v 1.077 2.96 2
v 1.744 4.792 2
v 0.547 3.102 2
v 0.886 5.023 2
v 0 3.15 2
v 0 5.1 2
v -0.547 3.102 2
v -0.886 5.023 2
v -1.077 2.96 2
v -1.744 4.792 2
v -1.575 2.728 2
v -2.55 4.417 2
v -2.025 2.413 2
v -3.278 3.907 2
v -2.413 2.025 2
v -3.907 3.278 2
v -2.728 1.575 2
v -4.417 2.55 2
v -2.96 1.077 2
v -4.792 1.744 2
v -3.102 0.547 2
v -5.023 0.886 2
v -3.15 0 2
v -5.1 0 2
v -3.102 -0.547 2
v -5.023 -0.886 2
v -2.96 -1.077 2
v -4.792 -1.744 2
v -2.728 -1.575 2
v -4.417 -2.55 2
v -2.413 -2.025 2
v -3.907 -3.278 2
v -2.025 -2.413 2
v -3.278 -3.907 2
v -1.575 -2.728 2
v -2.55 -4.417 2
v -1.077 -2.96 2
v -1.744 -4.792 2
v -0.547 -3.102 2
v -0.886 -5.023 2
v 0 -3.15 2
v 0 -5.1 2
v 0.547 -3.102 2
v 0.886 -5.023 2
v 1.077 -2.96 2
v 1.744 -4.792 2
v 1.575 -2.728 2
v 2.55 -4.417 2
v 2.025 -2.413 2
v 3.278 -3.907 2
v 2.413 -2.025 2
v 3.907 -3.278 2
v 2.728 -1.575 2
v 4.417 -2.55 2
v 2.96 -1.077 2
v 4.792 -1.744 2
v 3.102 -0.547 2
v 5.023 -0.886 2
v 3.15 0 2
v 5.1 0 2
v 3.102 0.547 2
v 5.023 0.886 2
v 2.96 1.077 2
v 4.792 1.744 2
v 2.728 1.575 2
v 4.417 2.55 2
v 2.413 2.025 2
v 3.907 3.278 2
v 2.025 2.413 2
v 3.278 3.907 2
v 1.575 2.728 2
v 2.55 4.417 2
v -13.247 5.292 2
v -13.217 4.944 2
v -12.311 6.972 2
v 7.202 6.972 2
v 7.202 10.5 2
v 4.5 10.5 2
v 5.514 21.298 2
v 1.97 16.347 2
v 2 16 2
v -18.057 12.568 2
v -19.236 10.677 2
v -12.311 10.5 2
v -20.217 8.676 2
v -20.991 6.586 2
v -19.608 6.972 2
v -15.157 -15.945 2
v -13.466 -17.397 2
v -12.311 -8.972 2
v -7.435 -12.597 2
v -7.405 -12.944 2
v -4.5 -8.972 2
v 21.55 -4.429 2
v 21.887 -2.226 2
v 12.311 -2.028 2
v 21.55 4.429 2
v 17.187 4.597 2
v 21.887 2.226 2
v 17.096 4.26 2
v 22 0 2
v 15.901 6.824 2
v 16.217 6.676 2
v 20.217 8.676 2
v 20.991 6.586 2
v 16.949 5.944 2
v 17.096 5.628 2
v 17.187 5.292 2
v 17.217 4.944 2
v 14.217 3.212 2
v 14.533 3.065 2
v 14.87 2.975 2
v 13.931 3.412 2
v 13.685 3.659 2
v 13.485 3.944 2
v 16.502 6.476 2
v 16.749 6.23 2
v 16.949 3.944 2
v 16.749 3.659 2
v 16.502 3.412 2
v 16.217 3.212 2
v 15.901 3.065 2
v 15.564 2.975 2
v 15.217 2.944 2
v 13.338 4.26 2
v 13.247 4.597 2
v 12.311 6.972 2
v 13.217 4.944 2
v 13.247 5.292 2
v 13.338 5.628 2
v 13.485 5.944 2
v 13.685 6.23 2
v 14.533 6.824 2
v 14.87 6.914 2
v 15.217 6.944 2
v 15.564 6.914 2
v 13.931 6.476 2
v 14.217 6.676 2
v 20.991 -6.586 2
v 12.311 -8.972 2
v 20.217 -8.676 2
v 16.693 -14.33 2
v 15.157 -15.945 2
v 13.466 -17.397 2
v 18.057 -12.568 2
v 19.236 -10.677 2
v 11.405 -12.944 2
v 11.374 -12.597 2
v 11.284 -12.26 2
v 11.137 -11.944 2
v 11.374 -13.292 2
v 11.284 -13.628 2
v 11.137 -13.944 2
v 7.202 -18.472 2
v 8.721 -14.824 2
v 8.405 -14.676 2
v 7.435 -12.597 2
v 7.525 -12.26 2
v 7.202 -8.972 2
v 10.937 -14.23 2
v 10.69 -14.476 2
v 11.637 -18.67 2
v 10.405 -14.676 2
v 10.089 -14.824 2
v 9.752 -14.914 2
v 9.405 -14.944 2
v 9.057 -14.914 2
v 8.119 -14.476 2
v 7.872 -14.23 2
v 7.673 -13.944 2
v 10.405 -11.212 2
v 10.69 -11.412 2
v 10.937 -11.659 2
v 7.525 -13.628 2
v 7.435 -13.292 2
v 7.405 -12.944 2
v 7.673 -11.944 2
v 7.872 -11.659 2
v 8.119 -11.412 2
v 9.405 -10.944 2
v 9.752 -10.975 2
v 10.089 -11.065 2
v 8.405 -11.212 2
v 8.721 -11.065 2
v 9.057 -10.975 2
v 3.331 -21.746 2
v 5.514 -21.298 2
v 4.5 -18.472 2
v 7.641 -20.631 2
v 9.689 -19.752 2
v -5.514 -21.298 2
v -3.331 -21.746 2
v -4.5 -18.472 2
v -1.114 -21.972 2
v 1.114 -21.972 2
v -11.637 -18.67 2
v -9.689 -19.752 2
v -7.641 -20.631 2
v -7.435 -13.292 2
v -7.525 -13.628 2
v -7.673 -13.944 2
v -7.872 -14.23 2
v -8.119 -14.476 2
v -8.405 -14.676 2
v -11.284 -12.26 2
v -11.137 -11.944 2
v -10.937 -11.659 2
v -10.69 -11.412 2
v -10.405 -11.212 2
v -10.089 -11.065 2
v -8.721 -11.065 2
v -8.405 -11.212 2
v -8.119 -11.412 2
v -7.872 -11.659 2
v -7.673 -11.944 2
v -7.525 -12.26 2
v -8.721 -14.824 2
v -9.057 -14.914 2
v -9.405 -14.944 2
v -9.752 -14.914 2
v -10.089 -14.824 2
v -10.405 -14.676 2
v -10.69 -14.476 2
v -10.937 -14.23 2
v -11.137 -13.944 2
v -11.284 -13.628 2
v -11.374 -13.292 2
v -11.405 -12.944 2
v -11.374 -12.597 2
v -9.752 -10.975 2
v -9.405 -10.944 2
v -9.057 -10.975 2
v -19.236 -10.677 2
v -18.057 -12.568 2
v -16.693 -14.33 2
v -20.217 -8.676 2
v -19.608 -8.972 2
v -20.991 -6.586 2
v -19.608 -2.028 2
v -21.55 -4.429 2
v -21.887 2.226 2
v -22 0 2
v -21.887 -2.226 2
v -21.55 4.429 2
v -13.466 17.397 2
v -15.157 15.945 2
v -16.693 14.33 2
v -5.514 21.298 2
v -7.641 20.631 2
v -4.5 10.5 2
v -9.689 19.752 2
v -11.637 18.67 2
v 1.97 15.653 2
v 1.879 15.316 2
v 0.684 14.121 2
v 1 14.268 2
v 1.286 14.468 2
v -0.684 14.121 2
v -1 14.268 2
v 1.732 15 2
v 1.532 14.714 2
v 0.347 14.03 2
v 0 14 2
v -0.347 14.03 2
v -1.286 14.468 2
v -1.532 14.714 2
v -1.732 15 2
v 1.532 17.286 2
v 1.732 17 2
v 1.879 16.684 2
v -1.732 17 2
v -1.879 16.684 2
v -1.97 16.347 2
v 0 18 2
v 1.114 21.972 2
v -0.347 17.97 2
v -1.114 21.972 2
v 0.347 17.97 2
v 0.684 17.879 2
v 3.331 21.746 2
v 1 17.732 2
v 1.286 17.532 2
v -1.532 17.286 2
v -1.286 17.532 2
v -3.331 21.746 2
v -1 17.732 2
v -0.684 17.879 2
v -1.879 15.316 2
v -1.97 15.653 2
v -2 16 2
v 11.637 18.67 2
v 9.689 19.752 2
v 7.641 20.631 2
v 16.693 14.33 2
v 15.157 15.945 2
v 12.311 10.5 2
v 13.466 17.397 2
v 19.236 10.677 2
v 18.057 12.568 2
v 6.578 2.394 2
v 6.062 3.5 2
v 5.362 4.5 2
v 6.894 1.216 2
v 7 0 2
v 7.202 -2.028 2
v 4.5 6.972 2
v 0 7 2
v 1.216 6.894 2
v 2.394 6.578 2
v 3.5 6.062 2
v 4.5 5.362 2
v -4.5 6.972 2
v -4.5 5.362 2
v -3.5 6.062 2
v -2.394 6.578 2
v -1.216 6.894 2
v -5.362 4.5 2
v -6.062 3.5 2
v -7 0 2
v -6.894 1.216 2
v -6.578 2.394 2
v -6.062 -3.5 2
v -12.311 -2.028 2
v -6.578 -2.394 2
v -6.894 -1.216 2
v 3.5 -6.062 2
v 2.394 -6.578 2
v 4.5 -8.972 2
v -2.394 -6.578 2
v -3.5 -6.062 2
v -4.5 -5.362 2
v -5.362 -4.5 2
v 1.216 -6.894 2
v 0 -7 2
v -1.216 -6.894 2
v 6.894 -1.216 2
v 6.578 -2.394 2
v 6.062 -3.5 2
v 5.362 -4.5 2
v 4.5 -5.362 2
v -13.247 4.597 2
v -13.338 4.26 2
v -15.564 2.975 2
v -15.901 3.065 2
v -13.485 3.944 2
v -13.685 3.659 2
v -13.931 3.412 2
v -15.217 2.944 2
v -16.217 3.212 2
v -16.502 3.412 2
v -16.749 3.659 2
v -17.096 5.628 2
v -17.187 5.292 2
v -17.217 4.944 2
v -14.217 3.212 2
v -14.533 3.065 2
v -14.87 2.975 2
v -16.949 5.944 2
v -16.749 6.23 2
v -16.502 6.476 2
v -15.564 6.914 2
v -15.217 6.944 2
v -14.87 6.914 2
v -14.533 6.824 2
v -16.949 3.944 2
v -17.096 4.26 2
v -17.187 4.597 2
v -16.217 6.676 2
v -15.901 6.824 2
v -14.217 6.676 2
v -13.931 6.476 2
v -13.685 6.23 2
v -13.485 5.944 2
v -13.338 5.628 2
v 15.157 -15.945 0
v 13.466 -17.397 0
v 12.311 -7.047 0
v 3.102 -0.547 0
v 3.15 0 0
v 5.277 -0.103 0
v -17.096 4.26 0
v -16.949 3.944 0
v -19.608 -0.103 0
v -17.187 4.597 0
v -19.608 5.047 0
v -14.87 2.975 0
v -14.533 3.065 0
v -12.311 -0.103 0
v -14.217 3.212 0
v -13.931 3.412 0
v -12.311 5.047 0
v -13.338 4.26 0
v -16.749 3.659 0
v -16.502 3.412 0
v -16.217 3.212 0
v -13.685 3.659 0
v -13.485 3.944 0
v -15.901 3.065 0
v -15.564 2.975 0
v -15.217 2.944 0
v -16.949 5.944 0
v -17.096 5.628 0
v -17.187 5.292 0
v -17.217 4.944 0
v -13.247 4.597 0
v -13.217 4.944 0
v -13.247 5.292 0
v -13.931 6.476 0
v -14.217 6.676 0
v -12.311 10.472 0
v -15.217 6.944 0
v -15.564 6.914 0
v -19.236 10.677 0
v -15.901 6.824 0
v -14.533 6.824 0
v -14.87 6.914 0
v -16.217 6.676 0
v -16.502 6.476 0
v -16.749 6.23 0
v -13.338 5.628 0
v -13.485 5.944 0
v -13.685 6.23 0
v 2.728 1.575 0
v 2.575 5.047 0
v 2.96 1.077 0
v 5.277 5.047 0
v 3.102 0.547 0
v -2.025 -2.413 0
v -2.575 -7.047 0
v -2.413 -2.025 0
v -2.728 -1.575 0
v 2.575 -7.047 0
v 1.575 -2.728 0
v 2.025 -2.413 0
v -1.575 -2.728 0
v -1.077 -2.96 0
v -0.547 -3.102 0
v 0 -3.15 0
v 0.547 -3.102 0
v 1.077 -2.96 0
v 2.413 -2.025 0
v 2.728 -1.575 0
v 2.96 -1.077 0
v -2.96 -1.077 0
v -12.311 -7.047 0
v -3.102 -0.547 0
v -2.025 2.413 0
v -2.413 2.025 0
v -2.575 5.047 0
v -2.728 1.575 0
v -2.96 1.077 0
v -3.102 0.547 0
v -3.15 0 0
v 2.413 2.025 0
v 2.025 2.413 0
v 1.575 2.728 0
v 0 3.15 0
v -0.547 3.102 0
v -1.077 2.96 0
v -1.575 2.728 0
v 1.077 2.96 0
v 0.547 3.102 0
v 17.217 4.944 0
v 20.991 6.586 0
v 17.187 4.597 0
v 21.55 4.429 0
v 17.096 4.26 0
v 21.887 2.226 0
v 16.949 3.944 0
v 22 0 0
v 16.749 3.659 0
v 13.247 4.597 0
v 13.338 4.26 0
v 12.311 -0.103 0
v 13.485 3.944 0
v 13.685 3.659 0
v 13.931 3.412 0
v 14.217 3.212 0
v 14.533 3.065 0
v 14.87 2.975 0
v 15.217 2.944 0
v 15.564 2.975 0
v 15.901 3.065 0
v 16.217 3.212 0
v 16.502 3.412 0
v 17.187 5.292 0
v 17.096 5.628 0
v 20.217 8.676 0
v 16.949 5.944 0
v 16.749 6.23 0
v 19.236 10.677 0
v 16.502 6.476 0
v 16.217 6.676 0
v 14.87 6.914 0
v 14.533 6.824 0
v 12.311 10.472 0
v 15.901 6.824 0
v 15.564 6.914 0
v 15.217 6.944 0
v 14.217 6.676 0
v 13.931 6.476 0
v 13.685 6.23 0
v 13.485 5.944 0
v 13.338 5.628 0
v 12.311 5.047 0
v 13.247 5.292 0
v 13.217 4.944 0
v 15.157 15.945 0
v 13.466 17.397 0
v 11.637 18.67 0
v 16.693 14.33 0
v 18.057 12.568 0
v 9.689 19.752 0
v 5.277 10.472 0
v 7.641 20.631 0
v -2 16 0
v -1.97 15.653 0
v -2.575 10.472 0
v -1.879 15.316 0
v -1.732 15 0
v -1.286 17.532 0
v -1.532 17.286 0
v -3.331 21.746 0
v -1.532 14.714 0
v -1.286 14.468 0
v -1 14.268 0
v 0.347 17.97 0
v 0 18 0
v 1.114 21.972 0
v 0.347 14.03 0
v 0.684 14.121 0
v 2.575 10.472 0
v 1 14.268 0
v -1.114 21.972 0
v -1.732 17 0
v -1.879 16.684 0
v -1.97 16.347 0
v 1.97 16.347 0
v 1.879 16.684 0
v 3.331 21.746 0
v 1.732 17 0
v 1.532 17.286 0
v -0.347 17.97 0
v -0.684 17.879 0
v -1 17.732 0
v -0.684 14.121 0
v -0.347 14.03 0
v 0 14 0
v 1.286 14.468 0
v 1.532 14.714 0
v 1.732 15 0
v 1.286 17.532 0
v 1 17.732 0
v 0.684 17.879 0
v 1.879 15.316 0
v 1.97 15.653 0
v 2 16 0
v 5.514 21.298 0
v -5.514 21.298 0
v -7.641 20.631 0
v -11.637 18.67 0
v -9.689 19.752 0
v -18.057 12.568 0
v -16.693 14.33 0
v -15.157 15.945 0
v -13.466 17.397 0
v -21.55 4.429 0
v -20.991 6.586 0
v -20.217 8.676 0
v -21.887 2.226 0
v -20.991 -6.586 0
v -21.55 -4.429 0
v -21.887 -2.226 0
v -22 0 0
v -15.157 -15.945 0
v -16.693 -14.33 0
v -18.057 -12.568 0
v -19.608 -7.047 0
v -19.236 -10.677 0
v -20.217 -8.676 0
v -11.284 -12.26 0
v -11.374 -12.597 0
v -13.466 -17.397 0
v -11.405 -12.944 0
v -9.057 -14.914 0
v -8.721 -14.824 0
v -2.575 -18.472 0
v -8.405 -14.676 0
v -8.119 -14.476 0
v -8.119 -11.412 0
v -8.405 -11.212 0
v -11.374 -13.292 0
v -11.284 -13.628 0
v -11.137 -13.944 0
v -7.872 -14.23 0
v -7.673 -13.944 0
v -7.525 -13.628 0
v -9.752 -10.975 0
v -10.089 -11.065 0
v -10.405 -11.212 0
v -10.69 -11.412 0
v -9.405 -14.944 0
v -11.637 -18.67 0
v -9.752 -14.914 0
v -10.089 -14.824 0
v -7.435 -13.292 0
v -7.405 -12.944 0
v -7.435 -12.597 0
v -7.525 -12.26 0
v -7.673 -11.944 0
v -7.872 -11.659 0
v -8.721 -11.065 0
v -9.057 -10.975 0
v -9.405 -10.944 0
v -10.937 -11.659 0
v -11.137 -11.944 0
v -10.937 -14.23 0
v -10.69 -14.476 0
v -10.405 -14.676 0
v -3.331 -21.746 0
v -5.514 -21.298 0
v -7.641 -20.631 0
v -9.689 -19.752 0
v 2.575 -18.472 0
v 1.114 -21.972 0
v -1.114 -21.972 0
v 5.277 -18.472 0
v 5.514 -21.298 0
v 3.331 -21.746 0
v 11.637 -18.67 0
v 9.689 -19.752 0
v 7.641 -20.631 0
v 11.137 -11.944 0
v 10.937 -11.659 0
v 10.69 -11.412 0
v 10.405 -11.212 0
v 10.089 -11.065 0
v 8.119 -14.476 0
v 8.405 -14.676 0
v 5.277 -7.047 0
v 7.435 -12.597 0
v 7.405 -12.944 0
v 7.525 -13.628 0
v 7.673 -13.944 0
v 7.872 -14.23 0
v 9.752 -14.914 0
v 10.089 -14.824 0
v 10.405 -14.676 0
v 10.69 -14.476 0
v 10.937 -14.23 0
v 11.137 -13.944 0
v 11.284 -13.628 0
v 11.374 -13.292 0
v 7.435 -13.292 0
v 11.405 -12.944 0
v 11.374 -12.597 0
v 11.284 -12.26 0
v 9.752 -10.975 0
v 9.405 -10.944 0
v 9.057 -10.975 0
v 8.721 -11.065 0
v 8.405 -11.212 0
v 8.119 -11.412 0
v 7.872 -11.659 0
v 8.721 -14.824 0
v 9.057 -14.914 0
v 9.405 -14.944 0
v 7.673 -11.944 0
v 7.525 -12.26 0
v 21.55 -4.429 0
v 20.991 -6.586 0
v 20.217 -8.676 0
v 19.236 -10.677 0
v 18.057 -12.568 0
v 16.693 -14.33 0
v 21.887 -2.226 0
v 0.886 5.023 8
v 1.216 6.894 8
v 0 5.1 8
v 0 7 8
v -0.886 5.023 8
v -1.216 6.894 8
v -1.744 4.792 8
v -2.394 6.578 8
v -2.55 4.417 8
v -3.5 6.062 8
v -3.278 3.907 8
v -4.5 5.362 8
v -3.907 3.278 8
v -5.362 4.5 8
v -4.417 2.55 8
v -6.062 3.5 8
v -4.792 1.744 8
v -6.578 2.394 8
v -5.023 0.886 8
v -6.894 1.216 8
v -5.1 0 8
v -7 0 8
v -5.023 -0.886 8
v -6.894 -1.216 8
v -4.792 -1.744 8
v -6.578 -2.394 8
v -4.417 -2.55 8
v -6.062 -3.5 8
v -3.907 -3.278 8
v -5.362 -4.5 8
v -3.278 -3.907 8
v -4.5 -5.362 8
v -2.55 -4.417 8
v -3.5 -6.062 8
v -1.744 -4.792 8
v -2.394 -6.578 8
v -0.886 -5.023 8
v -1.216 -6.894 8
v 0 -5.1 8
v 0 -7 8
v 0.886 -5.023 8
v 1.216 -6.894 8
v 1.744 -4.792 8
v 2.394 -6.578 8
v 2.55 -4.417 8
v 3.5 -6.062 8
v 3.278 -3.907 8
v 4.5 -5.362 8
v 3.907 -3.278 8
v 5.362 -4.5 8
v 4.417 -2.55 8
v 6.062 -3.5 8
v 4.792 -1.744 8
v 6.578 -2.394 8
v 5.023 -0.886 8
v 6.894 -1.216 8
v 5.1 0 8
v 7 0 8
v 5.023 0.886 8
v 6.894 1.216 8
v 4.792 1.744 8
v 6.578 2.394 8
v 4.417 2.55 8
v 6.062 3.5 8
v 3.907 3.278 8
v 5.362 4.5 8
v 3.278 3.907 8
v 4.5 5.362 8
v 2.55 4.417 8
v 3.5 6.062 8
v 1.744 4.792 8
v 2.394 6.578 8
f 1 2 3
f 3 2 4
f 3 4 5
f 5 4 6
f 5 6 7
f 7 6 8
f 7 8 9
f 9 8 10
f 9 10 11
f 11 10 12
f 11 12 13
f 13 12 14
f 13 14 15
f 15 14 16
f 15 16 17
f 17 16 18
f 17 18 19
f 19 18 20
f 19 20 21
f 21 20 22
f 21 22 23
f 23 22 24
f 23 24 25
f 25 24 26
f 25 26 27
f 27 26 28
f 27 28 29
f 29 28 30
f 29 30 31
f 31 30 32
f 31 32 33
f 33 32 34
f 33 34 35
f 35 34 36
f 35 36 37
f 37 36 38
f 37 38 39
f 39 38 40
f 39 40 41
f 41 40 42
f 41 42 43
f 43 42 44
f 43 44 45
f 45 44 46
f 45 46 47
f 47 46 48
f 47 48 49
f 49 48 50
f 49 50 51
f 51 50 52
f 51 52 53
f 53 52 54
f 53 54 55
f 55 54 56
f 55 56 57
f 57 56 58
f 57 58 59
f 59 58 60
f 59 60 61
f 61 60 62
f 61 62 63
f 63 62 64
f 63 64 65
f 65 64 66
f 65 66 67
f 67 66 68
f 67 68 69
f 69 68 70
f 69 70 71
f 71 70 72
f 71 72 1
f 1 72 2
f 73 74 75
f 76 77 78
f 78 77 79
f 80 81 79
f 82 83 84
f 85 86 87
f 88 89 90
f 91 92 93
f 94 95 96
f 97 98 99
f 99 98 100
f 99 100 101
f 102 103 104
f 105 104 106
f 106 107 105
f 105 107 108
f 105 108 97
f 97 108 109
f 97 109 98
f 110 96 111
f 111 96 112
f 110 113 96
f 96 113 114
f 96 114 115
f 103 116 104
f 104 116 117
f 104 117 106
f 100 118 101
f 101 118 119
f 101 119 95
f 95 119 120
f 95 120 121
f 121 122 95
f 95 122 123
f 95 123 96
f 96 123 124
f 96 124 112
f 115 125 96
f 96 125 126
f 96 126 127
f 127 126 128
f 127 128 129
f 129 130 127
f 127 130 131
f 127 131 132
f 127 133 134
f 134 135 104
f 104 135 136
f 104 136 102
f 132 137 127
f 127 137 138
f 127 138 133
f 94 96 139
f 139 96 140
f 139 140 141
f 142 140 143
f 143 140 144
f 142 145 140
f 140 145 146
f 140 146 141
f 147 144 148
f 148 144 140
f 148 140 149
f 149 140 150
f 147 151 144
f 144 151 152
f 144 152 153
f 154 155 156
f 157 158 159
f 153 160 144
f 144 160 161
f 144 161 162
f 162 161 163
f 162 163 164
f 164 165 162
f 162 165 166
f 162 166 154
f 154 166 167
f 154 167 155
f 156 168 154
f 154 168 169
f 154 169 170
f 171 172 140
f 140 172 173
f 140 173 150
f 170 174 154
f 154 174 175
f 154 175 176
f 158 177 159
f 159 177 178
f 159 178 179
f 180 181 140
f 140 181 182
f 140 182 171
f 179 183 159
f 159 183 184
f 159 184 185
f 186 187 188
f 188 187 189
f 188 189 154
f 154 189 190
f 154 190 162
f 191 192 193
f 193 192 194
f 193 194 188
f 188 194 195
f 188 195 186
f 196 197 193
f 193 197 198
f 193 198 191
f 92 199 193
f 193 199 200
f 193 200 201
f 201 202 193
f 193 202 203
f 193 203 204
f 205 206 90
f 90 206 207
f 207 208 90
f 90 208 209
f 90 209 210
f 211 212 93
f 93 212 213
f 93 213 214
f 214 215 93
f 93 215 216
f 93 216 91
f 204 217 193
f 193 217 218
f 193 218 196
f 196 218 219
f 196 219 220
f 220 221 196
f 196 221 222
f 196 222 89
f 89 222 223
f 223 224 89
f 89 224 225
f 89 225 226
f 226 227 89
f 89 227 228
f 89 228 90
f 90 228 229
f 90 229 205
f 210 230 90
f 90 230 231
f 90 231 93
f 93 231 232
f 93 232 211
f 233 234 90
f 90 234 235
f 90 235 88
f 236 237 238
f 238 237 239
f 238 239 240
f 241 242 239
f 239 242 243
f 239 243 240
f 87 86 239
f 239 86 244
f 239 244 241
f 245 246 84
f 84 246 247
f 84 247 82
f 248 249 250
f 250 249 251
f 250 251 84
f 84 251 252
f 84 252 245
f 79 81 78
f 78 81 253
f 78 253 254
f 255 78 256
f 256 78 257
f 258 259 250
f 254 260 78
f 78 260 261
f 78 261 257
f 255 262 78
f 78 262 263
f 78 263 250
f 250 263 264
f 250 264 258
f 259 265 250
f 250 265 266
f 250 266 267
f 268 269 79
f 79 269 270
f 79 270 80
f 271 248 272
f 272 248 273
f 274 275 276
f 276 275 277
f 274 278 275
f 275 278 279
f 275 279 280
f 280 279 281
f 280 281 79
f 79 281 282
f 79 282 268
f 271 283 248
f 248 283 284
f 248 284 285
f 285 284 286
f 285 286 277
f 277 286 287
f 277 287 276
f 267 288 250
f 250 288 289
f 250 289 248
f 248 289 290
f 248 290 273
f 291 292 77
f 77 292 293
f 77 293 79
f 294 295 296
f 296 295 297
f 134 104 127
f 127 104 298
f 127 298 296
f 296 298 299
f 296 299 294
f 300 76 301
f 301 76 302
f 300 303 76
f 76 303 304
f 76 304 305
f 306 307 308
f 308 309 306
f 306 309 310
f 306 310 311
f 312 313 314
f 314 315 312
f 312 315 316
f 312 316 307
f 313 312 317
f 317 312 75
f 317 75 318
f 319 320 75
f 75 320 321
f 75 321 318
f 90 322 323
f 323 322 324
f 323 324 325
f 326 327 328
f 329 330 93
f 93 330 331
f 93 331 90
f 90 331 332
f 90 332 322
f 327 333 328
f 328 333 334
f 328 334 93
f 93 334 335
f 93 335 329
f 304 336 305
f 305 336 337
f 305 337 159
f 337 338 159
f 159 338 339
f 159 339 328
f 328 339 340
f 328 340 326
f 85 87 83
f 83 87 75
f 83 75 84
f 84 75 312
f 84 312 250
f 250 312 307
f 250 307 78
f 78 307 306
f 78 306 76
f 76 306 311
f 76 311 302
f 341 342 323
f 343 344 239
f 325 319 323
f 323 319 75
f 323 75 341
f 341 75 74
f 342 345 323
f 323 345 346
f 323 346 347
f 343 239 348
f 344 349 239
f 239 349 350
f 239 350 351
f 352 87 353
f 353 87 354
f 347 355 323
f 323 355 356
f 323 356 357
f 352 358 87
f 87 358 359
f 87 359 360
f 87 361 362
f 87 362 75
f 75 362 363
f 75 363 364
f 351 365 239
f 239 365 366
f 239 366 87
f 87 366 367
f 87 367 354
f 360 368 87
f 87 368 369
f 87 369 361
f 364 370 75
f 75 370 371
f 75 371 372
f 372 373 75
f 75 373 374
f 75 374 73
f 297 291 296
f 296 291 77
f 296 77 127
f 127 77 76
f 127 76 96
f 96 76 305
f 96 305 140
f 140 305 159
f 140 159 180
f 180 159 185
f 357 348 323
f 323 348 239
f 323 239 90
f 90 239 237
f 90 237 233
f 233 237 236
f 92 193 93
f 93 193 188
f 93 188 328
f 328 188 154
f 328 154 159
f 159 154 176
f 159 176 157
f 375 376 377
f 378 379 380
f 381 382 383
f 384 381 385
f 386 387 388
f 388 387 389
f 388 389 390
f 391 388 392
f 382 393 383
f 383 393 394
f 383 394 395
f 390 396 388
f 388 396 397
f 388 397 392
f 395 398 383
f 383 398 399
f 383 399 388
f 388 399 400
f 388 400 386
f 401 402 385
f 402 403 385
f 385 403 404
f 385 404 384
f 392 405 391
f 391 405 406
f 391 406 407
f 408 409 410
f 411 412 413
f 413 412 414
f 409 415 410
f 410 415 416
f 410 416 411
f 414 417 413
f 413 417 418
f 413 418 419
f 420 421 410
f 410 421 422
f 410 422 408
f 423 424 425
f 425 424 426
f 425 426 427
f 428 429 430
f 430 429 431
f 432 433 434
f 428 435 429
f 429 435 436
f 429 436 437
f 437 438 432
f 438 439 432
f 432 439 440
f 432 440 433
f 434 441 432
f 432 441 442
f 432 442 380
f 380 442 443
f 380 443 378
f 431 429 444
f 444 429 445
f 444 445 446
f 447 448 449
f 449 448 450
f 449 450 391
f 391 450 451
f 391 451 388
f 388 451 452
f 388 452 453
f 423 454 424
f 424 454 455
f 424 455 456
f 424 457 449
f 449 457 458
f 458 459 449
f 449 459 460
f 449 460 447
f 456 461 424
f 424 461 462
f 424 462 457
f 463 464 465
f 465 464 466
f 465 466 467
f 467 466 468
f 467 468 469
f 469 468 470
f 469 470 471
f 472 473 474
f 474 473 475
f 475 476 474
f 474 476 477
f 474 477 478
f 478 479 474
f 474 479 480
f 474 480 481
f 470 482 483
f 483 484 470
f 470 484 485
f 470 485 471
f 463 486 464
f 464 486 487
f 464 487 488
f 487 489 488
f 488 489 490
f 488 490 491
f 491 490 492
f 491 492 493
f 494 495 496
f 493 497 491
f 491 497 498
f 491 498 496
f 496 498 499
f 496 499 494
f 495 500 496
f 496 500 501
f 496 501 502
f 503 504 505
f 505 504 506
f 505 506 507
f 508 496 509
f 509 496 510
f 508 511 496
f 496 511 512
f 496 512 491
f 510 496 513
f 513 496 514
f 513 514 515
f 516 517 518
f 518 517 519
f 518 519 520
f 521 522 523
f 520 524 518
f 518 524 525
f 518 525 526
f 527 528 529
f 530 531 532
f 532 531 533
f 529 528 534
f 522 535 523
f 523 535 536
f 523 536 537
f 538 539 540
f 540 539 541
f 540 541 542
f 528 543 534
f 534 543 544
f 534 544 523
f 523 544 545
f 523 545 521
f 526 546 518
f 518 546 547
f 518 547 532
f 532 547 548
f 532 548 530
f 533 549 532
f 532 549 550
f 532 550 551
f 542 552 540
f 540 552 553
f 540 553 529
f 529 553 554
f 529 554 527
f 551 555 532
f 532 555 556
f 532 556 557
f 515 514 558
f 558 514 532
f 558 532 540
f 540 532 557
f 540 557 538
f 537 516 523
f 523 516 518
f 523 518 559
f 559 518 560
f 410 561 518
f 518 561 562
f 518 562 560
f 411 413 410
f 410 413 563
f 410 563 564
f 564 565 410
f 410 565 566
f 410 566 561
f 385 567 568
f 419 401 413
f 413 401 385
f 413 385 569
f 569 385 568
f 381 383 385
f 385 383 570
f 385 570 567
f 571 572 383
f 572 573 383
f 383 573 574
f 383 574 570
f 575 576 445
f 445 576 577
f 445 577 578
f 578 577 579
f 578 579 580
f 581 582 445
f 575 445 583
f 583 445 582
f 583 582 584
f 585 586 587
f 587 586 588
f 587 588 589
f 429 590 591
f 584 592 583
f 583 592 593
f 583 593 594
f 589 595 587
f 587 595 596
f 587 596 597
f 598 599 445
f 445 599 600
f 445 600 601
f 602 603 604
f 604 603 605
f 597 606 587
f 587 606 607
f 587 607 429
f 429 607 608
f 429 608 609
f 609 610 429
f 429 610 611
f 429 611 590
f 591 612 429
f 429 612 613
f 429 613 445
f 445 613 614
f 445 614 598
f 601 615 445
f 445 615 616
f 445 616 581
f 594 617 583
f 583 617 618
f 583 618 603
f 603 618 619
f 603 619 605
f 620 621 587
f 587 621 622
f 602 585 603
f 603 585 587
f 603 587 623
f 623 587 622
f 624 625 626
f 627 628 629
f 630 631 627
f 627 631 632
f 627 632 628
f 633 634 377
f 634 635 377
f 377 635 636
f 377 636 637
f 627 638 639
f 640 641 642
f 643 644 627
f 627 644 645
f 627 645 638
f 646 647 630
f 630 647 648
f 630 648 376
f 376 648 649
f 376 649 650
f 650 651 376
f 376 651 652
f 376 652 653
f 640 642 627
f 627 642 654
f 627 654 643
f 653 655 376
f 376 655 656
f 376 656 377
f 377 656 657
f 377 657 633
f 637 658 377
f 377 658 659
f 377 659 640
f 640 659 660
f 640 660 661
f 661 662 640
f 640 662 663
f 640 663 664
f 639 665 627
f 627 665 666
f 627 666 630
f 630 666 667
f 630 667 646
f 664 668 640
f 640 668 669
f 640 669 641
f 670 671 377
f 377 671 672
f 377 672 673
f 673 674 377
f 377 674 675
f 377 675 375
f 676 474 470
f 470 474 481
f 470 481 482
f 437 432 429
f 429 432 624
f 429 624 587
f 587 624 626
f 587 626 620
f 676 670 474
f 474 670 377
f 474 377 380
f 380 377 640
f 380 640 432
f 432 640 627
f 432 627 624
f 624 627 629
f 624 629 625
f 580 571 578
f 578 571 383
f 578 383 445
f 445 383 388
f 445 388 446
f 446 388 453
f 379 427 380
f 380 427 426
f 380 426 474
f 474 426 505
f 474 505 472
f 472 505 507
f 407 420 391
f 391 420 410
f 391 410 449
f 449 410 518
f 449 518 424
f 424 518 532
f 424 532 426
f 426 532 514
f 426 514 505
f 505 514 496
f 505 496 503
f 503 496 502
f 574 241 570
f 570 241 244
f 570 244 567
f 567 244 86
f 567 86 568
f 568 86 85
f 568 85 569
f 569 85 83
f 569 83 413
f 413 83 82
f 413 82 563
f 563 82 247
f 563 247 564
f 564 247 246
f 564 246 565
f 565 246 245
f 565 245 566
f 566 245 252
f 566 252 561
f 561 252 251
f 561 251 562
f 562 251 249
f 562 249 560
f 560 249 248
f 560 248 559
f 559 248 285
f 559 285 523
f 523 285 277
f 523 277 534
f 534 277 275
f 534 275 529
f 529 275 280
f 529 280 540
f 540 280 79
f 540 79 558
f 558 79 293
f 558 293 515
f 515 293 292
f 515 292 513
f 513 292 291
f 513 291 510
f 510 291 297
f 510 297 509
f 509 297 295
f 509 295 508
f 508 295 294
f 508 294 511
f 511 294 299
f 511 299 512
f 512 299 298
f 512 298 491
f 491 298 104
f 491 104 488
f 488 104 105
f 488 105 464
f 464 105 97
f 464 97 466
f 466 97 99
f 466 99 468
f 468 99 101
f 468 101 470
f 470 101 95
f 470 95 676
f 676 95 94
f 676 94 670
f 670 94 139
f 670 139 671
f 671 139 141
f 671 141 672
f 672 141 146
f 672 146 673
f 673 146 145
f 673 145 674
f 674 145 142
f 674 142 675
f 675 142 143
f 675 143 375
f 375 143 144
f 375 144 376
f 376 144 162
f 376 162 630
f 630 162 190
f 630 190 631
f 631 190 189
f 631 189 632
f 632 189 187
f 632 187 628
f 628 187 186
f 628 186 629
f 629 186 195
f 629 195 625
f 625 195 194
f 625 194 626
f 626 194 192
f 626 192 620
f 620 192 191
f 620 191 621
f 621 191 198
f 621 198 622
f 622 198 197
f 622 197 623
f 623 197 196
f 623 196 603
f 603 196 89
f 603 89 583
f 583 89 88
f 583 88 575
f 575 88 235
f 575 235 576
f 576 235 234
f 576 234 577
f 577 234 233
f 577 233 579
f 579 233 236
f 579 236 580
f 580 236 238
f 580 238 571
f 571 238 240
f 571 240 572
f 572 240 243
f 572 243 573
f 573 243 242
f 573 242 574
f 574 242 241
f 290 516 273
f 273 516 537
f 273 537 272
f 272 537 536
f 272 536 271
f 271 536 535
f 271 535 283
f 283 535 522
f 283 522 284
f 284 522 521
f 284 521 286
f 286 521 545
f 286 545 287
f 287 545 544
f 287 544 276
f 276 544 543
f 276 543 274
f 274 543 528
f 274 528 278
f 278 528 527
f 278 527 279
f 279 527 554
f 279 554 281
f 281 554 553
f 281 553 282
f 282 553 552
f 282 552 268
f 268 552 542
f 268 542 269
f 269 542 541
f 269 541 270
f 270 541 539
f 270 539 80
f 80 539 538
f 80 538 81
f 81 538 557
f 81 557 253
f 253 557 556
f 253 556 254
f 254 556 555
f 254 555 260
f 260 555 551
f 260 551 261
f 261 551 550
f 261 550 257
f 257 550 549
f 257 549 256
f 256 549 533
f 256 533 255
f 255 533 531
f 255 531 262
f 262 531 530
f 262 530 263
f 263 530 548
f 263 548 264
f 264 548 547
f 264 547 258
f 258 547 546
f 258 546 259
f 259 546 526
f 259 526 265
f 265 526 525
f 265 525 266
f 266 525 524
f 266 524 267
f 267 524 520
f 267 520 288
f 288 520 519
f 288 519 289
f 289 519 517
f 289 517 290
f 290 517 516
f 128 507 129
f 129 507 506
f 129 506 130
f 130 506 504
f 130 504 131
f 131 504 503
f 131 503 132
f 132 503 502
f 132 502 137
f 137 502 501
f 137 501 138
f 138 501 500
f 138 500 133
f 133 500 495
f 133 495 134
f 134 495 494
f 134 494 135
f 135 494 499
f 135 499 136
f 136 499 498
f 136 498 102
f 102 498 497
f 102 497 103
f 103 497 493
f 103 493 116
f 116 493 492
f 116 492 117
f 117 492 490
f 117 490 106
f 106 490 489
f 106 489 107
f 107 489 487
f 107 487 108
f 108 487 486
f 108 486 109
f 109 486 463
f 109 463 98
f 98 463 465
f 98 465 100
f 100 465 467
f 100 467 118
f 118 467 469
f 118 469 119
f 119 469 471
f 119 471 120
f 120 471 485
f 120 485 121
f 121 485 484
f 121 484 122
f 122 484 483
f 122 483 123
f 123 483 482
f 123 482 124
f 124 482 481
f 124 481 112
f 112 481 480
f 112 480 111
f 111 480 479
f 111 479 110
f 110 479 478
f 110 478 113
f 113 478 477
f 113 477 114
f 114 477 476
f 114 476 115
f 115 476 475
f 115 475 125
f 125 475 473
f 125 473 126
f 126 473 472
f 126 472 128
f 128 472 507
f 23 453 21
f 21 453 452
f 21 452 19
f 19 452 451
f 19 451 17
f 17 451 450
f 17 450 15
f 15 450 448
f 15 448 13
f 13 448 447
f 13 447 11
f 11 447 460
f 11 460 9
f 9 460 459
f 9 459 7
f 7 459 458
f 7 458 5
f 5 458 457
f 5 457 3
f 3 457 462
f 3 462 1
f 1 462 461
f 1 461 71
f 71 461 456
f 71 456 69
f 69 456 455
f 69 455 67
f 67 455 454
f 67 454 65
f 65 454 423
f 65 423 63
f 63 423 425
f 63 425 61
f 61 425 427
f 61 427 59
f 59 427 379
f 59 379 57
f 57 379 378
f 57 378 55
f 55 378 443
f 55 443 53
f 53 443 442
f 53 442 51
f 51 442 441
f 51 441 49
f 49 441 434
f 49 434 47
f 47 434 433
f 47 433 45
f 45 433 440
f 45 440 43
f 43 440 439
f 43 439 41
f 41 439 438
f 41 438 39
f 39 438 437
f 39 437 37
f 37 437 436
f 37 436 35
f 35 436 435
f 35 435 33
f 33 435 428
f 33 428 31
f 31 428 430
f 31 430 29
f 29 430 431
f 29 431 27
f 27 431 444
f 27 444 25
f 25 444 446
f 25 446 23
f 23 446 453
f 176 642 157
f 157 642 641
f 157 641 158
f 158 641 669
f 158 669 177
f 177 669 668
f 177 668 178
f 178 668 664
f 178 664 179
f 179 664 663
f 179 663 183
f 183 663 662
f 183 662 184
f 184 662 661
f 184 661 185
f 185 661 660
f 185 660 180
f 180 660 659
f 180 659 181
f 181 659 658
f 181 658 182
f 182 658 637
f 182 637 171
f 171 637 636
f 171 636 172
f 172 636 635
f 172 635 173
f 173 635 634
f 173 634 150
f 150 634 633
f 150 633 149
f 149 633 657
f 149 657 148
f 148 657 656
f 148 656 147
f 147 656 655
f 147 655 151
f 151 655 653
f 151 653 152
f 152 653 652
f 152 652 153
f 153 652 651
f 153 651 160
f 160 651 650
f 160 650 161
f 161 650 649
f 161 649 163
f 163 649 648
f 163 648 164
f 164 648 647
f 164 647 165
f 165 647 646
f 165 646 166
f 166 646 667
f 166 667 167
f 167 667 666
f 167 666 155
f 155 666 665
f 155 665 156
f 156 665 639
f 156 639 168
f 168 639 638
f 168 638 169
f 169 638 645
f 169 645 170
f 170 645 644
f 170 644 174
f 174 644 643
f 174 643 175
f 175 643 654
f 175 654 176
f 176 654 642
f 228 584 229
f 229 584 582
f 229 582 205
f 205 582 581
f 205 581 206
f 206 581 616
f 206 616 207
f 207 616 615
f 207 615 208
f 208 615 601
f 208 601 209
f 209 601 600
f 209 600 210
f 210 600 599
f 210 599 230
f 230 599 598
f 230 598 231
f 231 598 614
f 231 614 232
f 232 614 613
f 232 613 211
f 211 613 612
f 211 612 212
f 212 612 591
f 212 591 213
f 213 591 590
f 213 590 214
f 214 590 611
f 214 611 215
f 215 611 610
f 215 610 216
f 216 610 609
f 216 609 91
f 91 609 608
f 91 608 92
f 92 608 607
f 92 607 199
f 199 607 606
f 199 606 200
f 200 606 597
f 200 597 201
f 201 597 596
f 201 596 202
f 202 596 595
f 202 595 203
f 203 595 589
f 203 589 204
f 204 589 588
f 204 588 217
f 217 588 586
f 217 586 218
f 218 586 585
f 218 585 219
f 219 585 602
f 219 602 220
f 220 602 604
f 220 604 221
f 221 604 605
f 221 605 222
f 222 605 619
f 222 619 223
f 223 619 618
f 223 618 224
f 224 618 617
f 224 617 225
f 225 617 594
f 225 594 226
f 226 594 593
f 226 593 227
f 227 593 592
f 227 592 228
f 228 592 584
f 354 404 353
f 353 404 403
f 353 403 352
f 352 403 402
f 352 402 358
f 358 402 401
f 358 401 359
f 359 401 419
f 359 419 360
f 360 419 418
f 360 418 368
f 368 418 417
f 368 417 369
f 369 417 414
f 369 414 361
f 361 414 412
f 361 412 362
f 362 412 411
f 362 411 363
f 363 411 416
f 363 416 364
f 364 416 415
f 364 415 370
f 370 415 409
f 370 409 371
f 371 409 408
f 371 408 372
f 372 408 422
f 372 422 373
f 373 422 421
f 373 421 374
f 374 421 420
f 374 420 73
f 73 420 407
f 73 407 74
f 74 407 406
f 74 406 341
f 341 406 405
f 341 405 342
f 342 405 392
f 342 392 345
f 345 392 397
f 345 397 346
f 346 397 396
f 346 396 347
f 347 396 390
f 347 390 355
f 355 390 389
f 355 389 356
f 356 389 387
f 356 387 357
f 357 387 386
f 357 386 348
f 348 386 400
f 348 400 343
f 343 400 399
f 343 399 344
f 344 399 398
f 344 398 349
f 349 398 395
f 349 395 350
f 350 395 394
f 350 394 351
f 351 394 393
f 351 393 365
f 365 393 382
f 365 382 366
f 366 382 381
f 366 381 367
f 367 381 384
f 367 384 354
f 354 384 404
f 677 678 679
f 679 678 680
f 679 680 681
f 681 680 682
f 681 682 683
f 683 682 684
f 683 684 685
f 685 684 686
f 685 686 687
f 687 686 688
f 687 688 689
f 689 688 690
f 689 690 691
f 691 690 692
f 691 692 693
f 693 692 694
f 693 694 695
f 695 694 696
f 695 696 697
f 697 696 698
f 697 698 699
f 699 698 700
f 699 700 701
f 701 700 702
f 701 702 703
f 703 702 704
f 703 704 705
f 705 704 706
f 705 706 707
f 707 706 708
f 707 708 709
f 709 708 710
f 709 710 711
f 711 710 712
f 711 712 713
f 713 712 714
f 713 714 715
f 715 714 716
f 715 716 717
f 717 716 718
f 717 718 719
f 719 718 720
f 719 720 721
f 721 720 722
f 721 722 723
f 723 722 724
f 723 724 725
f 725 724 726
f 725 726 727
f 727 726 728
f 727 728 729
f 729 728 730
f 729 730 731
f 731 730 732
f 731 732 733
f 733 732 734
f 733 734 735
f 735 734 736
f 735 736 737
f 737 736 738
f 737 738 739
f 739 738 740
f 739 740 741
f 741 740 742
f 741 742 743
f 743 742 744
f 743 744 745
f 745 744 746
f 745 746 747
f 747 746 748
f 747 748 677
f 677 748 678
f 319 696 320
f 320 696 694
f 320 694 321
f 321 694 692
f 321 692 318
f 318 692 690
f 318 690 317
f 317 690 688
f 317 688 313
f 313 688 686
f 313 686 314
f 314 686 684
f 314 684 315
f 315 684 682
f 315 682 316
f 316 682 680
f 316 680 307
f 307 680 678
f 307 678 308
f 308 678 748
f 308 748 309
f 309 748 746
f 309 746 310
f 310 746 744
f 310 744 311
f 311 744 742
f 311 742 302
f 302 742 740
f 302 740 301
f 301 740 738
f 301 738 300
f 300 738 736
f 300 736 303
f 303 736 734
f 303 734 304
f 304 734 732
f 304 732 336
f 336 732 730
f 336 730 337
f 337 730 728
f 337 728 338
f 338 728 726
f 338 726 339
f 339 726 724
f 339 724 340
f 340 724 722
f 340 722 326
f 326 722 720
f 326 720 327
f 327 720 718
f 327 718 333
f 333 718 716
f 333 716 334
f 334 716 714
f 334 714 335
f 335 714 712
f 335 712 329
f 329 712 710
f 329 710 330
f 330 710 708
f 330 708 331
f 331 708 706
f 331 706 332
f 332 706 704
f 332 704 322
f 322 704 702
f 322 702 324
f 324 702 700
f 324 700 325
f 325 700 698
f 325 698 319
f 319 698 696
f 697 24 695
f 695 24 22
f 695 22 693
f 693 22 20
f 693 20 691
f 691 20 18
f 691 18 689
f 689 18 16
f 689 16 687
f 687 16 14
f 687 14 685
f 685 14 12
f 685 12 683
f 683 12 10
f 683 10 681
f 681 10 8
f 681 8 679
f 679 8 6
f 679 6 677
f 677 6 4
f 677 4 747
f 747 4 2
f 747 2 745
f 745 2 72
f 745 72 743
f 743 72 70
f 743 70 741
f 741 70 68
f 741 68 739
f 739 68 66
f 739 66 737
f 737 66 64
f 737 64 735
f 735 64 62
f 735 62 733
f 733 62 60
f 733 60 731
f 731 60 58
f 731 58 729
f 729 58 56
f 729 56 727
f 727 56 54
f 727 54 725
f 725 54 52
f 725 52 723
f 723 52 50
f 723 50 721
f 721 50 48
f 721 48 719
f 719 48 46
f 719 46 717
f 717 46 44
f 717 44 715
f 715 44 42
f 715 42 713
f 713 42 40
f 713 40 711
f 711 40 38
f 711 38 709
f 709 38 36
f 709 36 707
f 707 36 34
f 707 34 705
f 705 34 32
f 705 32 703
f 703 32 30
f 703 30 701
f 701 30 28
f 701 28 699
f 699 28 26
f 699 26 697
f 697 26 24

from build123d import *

# Parameters (mm, degrees)
SKETCH_1_R      = 22
SKETCH_1_R_2    = 3.15
SKETCH_1_R_3    = 2
EXTRUDE_1_DEPTH = 2
SKETCH_2_R      = 7
SKETCH_2_R_2    = 5.1
EXTRUDE_3_DEPTH = 6


with BuildPart() as part:
    # 草图1 → 凸台-拉伸1 (new body)
    with BuildSketch(Plane.XY):
        Circle(SKETCH_1_R)
        Circle(SKETCH_1_R_2, mode=Mode.SUBTRACT)
        with Locations((0, 16)):
            Circle(SKETCH_1_R_3, mode=Mode.SUBTRACT)
        with Locations((15.216904261, 4.94427191)):
            Circle(SKETCH_1_R_3, mode=Mode.SUBTRACT)
        with Locations((9.404564037, -12.94427191)):
            Circle(SKETCH_1_R_3, mode=Mode.SUBTRACT)
        with Locations((-9.404564037, -12.94427191)):
            Circle(SKETCH_1_R_3, mode=Mode.SUBTRACT)
        with Locations((-15.216904261, 4.94427191)):
            Circle(SKETCH_1_R_3, mode=Mode.SUBTRACT)
    extrude(amount=EXTRUDE_1_DEPTH)

    # 草图2 → 凸台-拉伸3 (add)
    with BuildSketch(Plane.XY.offset(2)):
        Circle(SKETCH_2_R)
        Circle(SKETCH_2_R_2, mode=Mode.SUBTRACT)
    extrude(amount=EXTRUDE_3_DEPTH)


solid = part.part
